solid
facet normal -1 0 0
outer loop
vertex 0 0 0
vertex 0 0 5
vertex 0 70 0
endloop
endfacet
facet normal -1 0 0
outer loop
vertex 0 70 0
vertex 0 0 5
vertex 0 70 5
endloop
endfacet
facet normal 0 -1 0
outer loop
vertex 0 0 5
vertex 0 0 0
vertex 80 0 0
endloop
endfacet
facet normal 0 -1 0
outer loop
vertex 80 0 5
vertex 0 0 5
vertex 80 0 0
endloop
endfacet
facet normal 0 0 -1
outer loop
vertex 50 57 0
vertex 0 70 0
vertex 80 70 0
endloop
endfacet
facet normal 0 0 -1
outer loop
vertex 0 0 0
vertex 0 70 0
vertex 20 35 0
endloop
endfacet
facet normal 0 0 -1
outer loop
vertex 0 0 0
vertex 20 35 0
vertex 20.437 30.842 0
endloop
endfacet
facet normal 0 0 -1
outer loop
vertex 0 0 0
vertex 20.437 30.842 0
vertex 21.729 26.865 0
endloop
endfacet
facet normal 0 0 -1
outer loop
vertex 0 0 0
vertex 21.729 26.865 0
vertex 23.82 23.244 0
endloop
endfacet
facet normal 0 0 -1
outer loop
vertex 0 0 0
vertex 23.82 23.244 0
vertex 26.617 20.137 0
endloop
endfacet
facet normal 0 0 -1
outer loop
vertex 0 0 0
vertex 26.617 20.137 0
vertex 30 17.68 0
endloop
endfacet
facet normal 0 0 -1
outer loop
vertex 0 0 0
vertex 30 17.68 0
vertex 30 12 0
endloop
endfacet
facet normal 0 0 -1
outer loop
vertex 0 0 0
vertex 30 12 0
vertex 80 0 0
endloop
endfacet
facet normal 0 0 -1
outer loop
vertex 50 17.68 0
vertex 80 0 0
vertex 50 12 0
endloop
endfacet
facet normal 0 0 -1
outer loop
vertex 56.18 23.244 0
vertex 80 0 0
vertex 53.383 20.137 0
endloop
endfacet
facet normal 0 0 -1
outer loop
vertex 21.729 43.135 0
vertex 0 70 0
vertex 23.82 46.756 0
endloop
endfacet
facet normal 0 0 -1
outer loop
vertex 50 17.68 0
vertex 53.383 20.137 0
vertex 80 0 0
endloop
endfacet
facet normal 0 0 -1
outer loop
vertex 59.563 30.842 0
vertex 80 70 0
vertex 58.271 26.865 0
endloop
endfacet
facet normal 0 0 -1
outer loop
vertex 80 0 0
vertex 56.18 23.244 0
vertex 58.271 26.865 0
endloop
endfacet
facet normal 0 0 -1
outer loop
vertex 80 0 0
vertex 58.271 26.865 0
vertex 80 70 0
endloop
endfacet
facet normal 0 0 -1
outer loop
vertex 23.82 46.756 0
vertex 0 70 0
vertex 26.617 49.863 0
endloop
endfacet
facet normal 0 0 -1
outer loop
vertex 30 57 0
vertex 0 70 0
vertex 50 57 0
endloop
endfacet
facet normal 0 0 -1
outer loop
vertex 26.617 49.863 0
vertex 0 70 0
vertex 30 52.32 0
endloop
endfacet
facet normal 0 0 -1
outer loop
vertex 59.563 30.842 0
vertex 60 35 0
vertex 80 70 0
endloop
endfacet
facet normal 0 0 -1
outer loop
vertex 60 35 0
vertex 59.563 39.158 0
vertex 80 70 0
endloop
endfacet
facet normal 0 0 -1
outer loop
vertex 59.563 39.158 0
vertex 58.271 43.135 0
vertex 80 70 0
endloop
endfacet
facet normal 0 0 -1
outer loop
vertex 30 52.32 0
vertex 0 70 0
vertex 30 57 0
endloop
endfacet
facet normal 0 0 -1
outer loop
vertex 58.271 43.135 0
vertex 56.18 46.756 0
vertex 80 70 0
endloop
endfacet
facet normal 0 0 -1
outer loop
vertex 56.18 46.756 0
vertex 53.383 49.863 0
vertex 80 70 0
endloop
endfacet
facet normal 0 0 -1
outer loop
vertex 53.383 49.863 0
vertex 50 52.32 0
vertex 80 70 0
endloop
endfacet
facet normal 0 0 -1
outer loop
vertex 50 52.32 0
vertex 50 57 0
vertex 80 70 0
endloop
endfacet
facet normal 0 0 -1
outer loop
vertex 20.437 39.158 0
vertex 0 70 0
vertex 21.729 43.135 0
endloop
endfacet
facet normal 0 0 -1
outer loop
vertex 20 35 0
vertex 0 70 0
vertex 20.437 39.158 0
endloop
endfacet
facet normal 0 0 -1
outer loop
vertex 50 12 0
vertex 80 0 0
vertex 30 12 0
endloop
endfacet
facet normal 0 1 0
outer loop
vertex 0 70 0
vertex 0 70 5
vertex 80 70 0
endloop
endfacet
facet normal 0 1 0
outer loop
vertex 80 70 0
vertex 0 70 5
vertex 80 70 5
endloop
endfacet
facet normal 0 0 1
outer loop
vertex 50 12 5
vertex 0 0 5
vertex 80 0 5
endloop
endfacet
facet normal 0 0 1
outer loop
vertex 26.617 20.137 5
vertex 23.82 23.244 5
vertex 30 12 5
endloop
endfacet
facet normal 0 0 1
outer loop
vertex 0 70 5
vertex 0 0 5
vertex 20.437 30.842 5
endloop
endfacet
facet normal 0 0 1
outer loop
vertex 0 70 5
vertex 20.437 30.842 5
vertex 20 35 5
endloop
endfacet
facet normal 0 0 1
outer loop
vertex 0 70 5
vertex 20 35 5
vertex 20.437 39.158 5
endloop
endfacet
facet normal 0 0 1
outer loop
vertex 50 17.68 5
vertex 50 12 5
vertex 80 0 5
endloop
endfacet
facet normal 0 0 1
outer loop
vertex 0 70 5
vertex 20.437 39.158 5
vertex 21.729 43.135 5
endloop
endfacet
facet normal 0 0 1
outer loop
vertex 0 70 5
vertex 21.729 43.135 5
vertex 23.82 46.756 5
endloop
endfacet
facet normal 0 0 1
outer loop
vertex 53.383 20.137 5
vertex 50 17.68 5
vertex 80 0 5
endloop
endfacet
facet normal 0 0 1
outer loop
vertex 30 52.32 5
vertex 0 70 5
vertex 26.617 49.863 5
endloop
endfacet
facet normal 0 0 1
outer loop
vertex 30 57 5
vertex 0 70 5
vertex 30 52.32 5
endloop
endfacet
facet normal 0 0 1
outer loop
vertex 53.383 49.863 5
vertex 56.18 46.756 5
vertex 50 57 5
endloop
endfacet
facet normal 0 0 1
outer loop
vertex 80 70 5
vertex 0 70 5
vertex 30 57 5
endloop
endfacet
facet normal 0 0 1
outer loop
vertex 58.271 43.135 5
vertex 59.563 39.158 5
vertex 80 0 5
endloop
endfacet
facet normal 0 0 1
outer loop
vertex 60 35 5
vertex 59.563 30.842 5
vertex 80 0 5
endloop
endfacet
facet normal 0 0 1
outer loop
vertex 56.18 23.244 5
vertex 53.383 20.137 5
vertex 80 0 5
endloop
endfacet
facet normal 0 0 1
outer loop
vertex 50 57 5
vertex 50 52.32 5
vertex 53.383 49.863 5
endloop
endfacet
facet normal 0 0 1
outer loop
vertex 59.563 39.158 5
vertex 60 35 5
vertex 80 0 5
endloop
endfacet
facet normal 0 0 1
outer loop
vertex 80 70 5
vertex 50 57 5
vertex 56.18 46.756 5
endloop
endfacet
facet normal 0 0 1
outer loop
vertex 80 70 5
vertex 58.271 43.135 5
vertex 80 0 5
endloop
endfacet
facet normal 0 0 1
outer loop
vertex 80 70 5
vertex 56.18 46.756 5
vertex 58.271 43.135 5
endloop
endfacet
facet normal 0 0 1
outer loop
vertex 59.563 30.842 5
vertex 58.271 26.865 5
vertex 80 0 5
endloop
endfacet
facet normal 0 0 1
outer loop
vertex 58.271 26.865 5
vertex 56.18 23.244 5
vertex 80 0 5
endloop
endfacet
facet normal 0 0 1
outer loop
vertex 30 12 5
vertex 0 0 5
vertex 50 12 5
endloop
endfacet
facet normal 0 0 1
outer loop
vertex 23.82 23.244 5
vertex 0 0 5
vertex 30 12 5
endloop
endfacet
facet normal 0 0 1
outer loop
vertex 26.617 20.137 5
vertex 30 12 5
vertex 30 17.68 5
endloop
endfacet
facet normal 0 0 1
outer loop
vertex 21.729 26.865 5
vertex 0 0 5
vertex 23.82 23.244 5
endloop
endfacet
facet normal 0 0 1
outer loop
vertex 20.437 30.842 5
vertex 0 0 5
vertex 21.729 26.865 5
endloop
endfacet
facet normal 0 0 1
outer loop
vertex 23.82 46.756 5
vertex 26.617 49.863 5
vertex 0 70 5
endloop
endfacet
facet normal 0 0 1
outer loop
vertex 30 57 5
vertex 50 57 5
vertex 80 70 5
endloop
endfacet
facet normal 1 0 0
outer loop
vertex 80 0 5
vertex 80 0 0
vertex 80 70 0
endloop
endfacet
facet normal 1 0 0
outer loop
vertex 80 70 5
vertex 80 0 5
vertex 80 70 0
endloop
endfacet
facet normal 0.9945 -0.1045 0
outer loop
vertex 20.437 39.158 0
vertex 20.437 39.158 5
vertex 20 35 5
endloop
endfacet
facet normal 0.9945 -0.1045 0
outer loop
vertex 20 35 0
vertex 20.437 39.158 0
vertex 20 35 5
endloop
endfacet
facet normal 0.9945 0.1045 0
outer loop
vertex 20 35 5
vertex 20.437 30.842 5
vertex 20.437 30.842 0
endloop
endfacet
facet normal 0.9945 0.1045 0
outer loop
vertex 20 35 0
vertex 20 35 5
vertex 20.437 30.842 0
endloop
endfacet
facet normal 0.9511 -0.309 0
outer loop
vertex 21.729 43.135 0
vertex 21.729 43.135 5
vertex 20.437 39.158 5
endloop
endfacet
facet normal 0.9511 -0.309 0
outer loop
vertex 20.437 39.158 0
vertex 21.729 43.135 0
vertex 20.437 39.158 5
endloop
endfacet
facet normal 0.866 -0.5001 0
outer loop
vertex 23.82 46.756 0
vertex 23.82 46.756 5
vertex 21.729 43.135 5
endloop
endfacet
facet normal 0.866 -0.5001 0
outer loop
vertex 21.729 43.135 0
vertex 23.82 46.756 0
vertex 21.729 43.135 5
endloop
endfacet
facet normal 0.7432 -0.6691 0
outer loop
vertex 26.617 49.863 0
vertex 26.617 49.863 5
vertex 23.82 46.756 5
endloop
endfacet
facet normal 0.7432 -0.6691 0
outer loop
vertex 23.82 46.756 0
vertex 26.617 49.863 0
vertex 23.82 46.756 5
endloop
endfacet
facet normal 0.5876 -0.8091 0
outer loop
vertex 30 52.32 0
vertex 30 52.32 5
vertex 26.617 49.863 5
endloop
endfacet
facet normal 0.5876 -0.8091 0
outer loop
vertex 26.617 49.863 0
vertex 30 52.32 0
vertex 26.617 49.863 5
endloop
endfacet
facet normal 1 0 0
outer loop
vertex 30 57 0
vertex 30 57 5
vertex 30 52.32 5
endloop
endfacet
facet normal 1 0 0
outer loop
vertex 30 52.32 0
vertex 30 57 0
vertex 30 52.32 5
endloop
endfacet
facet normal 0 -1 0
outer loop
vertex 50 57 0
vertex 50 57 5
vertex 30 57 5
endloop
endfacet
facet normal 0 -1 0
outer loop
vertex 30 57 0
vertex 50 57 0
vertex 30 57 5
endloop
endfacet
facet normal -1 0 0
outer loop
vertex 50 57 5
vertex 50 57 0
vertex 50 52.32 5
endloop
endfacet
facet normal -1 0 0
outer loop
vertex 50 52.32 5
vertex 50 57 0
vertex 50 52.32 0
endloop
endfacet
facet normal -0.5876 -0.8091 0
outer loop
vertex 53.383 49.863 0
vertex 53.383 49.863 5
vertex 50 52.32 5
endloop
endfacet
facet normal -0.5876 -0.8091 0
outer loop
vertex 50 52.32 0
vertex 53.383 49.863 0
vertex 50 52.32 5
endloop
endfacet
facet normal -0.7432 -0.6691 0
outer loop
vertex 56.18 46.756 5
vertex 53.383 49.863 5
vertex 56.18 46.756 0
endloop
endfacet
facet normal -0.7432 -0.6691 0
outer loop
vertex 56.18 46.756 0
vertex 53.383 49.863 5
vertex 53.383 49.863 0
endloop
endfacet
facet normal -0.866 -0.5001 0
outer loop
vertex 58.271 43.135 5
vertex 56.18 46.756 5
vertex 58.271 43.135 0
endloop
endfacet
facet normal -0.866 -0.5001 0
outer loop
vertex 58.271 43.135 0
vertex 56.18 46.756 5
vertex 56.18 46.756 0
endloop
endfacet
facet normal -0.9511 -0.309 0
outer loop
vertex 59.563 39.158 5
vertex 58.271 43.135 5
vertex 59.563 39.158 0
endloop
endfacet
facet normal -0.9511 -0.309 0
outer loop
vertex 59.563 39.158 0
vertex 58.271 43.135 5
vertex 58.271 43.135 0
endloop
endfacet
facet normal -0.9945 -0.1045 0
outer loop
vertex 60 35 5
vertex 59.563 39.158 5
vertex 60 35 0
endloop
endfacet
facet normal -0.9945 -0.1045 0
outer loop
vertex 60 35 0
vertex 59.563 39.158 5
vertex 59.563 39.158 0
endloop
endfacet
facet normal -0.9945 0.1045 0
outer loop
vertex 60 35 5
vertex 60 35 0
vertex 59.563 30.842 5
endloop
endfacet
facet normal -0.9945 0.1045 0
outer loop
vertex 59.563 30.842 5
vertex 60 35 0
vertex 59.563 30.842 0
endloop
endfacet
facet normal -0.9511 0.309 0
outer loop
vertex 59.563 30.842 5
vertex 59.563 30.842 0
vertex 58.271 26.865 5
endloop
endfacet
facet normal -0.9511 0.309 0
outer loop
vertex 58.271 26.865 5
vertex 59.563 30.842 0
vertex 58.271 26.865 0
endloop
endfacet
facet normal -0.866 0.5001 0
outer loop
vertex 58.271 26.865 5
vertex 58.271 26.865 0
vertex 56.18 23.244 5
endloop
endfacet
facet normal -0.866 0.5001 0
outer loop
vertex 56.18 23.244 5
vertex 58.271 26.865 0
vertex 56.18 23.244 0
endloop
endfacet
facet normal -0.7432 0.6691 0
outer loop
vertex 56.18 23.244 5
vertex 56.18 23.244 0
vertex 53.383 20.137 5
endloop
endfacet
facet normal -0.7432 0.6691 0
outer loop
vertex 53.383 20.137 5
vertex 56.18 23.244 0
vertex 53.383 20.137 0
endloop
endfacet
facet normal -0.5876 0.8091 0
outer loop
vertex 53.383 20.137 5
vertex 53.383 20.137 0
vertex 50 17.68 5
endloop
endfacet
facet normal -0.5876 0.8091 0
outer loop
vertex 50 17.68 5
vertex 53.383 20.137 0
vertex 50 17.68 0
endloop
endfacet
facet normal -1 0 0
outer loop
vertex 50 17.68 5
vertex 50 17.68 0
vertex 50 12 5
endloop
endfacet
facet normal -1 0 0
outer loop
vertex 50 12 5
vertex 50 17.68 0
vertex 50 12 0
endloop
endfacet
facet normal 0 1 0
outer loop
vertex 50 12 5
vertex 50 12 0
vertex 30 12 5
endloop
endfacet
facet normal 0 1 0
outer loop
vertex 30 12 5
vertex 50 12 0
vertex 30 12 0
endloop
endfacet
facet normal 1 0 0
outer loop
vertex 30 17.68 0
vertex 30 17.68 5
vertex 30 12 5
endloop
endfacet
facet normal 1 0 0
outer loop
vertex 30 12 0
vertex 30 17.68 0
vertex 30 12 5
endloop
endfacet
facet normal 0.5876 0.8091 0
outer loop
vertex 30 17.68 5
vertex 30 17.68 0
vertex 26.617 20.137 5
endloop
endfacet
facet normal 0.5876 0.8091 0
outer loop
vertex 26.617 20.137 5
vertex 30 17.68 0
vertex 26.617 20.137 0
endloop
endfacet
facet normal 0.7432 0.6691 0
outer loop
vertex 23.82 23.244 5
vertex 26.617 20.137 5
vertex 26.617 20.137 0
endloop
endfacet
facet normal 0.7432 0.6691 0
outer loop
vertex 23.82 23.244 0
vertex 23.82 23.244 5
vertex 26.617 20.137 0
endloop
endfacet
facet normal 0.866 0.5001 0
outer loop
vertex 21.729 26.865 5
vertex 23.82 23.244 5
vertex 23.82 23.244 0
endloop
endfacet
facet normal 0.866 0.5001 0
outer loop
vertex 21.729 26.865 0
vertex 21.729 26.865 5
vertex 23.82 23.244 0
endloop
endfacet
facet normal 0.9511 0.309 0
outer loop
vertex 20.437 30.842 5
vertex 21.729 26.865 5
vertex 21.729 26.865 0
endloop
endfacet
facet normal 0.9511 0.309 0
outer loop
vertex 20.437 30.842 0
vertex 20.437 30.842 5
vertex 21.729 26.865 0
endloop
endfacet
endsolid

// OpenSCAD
barwidth = 20;
width_ridge=4;
widthNema17=43;
nema17holeOffset =6;
nema17innerHole=25/2;
nema17Shaft=8/2;
motorThickNess=5;
offsetx =9;
offsety  =0;



height = 70;
width = 80;

thickness=5;
spacing_bars = 50;
largeCircle = 70.0;
holeSize=5.5;

holes = [

];



difference() {
union() {

cube([width,height,thickness],false);



}



translate([30,12,-0.1]) {
	cube([20,45,thickness+2],false);


	for(i = holes) {
		translate([ i[0],i[1],0])
			cylinder(h=100,r=i[2]/2, center = false, $fs=1);
	}


}

translate([40,35,-1]) 
	cylinder(h=100,r=20, center = false, $fs=1);


}
